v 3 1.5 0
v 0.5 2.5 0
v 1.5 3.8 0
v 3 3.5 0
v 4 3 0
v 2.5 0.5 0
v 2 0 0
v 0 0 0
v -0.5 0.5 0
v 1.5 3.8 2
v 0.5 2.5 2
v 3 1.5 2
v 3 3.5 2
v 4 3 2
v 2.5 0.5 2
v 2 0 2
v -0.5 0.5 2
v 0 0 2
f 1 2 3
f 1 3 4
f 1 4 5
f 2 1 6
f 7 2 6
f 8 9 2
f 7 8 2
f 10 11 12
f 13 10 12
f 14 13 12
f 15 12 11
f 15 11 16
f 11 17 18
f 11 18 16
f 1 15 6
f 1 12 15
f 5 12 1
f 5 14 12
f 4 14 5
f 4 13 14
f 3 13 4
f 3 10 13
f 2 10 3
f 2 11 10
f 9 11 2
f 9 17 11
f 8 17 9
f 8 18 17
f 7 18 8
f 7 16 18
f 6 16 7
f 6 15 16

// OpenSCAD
// Parameters
thickness = 2; // consistent thickness of the key
bevel = 0.3;   // optional bevel amount (not implemented in this simple version)

// 2D profile of the key insert
module key_insert_profile() {
    polygon(points=[
        [0, 0],         // Start at the rounded end
        [2, 0],         // Right side of the rounded end
        [2.5, 0.5],     // Curve transition
        [3, 1.5],       // Mid body
        [4, 3],         // Tapered point
        [3, 3.5],       // Top edge
        [1.5, 3.8],     // Left top edge
        [0.5, 2.5],     // Left mid
        [0, 1.5],       // Back to start
        [-0.5, 0.5]     // Rounded protrusion
    ]);
}

// 3D model
module key_insert() {
    linear_extrude(height=thickness)
        key_insert_profile();
}

// Render the key insert
key_insert();
